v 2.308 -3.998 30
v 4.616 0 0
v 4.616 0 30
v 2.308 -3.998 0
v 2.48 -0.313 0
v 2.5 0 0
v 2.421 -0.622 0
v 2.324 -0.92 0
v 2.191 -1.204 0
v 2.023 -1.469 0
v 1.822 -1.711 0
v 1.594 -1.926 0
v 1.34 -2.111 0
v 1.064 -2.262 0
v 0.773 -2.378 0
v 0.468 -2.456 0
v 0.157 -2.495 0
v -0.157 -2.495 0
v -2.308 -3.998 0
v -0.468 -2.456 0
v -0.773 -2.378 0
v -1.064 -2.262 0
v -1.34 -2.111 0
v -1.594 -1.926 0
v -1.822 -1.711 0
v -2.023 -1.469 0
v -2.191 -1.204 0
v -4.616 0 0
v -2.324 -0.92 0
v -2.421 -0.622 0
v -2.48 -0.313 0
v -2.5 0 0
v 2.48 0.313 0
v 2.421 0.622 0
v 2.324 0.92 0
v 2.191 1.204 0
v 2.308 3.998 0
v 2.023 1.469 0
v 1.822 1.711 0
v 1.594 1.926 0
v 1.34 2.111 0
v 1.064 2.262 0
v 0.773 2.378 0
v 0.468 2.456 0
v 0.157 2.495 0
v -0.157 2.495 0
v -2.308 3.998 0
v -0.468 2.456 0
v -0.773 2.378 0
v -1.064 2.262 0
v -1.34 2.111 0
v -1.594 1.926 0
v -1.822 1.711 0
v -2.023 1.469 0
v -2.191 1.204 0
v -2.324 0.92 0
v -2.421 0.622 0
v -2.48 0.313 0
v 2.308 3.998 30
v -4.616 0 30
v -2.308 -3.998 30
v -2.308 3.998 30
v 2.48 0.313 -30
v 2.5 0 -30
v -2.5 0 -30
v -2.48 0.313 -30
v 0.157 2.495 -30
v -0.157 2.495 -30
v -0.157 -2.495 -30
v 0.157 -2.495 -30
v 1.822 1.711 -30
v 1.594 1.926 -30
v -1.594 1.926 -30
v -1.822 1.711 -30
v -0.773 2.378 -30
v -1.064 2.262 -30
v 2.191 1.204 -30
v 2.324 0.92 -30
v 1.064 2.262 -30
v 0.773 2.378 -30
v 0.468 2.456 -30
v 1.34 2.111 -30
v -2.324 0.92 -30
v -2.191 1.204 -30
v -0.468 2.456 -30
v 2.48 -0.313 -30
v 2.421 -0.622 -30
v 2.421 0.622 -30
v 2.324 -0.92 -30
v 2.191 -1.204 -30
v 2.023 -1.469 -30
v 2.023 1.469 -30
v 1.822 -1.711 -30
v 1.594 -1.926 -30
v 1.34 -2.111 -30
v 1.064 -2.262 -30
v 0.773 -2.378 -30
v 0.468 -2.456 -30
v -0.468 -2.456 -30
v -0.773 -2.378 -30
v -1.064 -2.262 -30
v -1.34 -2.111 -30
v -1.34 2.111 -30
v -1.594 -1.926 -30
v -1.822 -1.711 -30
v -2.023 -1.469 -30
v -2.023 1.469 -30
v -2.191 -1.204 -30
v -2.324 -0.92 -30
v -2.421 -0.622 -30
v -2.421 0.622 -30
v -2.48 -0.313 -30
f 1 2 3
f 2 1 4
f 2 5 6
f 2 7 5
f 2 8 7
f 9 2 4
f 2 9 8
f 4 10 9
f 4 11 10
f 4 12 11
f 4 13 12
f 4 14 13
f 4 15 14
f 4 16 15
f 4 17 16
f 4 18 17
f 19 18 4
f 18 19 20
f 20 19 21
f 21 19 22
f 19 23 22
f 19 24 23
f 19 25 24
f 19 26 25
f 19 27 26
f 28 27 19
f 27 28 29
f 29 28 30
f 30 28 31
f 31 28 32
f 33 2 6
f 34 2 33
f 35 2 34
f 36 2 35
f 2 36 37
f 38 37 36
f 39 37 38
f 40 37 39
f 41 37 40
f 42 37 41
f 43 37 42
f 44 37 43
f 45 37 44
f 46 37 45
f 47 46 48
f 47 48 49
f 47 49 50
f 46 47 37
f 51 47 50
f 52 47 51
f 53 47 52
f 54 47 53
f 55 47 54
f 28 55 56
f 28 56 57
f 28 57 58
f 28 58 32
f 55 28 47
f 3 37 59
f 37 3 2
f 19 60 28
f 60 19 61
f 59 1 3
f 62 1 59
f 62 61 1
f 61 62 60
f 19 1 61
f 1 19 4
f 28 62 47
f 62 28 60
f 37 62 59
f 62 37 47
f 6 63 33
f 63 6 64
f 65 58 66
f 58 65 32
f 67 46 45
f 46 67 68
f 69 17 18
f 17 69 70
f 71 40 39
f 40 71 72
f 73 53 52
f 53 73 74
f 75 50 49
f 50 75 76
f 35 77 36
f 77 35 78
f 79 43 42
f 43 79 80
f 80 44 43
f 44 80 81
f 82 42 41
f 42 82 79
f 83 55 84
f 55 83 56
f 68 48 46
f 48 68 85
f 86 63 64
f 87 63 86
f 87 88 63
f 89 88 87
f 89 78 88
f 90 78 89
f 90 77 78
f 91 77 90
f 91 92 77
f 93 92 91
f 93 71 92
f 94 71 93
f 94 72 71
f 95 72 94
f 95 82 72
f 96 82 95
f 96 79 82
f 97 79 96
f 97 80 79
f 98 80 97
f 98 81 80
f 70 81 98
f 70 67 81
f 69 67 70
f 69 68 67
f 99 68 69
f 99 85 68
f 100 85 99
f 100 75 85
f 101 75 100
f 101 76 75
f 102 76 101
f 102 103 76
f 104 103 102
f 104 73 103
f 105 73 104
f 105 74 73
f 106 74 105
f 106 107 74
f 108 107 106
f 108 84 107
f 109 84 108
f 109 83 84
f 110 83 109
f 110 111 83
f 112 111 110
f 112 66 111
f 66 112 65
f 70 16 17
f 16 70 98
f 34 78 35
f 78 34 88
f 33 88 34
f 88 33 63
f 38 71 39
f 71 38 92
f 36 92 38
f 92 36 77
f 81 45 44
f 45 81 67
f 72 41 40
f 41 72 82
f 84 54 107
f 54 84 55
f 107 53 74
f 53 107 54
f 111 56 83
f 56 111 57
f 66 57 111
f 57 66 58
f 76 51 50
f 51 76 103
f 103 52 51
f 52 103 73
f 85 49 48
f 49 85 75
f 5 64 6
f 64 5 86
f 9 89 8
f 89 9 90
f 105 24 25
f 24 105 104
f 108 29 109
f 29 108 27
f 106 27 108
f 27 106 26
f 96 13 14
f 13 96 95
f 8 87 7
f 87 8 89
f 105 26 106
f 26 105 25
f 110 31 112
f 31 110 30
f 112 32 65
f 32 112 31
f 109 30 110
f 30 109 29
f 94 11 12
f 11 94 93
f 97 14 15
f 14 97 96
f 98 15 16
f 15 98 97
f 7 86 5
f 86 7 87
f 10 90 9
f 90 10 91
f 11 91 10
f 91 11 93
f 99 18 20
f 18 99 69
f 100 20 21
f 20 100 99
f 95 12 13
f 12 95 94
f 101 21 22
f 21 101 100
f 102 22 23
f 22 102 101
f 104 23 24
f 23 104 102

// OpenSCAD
$fn = 50;


difference() {
	union() {
		translate(v = [0, 0, 0]) {
			rotate(a = [0, 0, 0]) {
				translate(v = [0, 0, 0]) {
					rotate(a = [0, 0, 0]) {
						linear_extrude(height = 30) {
							polygon(points = [[4.6160000000, 0.0000000000], [2.3080000000, 3.9975732639], [-2.3080000000, 3.9975732639], [-4.6160000000, 0.0000000000], [-2.3080000000, -3.9975732639], [2.3080000000, -3.9975732639]]);
						}
					}
				}
			}
		}
		translate(v = [0, 0, -30]) {
			rotate(a = [0, 0, 0]) {
				cylinder(h = 30, r = 2.5000000000);
			}
		}
	}
	union();
}
